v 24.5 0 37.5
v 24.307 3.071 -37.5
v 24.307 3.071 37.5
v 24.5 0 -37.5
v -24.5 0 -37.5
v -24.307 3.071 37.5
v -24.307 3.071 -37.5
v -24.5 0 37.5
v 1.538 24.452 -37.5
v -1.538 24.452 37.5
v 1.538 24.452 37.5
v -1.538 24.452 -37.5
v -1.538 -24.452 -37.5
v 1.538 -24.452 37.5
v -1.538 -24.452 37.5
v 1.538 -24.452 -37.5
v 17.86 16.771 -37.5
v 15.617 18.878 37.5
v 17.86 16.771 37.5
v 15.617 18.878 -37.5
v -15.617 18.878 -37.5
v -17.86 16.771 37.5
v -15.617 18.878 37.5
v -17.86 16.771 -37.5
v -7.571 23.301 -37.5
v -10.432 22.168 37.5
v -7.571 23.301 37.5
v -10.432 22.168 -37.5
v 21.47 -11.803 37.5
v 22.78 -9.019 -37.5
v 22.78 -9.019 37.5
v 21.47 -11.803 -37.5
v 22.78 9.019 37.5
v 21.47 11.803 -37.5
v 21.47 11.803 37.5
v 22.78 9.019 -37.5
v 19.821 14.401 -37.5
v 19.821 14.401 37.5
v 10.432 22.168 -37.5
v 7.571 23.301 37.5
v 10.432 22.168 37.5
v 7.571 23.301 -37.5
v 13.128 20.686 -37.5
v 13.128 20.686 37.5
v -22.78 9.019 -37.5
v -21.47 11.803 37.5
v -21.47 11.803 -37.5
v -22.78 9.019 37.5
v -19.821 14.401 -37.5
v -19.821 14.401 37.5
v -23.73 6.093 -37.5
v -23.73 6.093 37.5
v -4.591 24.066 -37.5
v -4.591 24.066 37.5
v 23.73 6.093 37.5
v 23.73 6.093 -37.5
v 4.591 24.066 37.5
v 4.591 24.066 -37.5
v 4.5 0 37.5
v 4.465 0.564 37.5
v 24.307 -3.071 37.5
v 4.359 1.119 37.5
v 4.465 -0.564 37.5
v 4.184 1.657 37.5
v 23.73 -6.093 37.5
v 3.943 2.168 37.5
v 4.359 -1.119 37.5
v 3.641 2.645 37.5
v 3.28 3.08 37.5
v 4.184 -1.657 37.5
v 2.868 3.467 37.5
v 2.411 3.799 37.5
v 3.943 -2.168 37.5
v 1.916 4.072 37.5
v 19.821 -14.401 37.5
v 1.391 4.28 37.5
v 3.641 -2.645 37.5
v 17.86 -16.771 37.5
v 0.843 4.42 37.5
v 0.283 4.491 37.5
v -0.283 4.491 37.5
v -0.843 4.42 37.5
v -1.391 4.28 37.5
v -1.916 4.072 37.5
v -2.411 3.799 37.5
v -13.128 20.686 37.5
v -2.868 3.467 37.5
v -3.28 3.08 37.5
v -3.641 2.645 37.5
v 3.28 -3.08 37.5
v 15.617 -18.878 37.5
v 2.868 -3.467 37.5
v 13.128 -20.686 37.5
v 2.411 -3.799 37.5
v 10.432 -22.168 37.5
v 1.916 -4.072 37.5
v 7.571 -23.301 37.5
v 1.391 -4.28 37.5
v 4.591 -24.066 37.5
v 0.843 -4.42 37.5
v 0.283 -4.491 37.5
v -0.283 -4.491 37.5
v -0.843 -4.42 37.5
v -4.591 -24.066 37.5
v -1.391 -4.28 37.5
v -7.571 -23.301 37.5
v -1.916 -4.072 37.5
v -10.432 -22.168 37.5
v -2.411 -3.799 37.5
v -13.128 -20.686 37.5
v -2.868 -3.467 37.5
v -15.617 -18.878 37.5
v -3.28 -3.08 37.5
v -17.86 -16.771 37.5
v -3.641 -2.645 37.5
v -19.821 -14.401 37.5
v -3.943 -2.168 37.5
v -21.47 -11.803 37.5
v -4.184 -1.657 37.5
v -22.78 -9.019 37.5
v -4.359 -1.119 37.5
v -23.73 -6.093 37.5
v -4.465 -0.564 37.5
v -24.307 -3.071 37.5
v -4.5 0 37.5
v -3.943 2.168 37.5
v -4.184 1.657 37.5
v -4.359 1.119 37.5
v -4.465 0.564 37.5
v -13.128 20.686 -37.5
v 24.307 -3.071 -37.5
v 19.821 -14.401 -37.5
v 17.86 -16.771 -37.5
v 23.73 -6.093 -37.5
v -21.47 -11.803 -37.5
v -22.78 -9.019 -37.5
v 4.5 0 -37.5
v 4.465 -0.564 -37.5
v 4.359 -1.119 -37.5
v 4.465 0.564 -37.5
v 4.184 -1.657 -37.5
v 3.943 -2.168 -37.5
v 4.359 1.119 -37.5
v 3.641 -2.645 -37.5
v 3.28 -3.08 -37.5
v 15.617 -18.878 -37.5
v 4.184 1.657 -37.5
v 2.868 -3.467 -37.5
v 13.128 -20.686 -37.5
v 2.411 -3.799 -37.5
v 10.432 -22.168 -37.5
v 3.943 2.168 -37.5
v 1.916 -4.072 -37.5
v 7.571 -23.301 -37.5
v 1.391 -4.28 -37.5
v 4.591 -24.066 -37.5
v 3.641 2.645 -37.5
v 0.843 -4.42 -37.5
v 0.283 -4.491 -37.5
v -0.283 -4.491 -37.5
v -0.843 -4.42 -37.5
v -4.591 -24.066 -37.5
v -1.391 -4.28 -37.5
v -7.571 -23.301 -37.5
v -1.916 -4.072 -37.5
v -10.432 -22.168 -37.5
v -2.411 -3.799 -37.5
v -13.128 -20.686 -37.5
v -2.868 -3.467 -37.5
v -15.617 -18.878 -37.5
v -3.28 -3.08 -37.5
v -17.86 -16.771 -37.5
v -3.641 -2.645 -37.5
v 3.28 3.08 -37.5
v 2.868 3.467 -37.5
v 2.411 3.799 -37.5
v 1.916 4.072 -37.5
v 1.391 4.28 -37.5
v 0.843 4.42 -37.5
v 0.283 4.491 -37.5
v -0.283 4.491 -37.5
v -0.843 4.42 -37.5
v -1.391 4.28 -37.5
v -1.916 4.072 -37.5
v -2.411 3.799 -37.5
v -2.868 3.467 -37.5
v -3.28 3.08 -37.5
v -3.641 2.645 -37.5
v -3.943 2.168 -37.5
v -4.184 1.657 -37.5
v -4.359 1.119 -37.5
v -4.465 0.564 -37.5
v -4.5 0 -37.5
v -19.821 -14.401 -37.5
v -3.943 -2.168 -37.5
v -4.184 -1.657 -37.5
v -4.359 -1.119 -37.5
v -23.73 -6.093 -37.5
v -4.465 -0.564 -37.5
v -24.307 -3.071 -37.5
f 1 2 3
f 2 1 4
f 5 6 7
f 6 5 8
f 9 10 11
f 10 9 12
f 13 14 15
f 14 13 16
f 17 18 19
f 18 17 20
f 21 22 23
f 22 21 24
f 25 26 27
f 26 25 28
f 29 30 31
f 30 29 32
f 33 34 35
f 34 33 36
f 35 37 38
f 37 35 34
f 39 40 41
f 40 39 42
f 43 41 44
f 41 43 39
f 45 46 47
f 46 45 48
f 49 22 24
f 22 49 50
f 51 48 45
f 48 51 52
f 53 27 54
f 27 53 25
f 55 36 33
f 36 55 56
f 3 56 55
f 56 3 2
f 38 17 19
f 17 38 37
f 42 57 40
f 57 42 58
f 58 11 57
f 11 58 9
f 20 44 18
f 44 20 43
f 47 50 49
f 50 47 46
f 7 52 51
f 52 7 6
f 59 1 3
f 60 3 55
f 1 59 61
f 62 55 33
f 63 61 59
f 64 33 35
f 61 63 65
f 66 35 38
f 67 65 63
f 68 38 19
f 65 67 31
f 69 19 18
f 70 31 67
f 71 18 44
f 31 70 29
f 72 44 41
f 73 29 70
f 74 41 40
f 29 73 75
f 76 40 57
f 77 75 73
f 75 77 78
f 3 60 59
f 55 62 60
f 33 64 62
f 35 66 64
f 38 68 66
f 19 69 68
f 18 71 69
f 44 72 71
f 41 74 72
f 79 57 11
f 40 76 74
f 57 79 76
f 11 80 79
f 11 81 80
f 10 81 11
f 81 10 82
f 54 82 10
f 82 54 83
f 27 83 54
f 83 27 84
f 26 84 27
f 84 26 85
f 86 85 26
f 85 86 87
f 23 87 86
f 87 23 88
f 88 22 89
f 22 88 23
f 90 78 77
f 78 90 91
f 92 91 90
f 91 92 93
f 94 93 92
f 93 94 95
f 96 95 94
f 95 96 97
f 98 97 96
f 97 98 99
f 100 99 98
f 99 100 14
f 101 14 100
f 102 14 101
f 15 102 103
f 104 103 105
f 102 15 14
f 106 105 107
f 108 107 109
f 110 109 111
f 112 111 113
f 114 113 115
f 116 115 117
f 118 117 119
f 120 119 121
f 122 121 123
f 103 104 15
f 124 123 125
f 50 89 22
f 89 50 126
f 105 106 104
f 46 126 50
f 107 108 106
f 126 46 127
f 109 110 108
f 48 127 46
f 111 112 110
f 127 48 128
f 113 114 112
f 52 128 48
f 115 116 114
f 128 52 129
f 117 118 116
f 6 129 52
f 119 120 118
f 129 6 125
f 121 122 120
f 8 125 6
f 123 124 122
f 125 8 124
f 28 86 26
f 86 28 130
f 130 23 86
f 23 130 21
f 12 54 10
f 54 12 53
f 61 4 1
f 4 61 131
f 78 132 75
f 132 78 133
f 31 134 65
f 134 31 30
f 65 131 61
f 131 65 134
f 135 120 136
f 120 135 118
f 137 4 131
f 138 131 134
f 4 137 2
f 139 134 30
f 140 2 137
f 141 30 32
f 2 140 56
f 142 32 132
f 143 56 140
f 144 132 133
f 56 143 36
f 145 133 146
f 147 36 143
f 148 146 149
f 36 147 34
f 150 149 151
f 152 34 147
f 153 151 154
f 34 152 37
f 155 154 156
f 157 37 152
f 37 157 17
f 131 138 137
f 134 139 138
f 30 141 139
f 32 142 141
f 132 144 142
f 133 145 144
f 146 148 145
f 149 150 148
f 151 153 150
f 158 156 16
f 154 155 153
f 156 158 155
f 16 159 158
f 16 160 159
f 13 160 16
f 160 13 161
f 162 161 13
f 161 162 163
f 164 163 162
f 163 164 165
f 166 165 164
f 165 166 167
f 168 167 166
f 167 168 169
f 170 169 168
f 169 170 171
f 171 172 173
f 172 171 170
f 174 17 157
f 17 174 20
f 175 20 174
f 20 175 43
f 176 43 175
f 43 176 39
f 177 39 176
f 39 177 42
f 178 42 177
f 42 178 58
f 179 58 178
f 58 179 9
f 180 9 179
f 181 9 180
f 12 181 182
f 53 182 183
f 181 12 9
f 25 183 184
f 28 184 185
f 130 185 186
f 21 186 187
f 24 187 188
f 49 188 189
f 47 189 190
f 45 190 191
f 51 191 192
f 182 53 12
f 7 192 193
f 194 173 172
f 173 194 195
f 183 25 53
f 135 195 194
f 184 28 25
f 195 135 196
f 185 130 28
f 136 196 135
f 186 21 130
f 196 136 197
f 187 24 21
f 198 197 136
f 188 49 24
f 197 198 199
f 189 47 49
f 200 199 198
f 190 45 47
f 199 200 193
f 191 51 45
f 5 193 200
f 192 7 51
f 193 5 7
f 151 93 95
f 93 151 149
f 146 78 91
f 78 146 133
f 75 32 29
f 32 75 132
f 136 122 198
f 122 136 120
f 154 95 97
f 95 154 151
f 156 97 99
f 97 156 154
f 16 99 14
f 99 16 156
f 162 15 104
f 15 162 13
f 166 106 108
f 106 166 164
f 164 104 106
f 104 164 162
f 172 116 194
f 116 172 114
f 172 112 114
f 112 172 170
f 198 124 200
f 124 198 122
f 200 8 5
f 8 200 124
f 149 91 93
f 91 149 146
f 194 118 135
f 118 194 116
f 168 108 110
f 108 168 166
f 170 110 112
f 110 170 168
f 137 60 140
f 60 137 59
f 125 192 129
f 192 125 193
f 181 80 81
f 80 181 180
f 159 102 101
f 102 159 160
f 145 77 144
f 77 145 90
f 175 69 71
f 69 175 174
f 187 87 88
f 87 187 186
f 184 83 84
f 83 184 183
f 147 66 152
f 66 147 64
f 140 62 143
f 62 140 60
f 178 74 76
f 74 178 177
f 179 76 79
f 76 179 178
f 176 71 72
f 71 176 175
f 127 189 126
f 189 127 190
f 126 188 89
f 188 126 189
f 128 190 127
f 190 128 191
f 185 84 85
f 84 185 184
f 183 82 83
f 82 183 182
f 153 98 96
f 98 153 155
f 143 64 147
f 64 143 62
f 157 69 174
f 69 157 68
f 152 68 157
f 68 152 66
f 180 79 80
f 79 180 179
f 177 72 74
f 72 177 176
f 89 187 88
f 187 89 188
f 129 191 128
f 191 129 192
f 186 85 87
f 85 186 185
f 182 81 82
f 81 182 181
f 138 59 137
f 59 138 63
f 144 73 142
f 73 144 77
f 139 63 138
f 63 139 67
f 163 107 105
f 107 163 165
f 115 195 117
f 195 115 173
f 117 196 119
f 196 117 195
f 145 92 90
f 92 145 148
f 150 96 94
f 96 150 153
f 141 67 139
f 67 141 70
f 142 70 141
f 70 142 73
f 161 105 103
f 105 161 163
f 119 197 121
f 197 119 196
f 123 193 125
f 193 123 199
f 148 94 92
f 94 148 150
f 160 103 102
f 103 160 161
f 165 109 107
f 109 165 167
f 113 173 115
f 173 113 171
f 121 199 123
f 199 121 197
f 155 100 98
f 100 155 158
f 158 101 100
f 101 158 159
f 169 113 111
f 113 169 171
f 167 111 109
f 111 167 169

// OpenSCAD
$fn = 50;


difference() {
	union() {
		translate(v = [0, 0, -37.5000000000]) {
			cylinder(h = 75, r = 24.5000000000);
		}
	}
	union() {
		translate(v = [0, 0, -100.0000000000]) {
			cylinder(h = 200, r = 4.5000000000);
		}
	}
}
